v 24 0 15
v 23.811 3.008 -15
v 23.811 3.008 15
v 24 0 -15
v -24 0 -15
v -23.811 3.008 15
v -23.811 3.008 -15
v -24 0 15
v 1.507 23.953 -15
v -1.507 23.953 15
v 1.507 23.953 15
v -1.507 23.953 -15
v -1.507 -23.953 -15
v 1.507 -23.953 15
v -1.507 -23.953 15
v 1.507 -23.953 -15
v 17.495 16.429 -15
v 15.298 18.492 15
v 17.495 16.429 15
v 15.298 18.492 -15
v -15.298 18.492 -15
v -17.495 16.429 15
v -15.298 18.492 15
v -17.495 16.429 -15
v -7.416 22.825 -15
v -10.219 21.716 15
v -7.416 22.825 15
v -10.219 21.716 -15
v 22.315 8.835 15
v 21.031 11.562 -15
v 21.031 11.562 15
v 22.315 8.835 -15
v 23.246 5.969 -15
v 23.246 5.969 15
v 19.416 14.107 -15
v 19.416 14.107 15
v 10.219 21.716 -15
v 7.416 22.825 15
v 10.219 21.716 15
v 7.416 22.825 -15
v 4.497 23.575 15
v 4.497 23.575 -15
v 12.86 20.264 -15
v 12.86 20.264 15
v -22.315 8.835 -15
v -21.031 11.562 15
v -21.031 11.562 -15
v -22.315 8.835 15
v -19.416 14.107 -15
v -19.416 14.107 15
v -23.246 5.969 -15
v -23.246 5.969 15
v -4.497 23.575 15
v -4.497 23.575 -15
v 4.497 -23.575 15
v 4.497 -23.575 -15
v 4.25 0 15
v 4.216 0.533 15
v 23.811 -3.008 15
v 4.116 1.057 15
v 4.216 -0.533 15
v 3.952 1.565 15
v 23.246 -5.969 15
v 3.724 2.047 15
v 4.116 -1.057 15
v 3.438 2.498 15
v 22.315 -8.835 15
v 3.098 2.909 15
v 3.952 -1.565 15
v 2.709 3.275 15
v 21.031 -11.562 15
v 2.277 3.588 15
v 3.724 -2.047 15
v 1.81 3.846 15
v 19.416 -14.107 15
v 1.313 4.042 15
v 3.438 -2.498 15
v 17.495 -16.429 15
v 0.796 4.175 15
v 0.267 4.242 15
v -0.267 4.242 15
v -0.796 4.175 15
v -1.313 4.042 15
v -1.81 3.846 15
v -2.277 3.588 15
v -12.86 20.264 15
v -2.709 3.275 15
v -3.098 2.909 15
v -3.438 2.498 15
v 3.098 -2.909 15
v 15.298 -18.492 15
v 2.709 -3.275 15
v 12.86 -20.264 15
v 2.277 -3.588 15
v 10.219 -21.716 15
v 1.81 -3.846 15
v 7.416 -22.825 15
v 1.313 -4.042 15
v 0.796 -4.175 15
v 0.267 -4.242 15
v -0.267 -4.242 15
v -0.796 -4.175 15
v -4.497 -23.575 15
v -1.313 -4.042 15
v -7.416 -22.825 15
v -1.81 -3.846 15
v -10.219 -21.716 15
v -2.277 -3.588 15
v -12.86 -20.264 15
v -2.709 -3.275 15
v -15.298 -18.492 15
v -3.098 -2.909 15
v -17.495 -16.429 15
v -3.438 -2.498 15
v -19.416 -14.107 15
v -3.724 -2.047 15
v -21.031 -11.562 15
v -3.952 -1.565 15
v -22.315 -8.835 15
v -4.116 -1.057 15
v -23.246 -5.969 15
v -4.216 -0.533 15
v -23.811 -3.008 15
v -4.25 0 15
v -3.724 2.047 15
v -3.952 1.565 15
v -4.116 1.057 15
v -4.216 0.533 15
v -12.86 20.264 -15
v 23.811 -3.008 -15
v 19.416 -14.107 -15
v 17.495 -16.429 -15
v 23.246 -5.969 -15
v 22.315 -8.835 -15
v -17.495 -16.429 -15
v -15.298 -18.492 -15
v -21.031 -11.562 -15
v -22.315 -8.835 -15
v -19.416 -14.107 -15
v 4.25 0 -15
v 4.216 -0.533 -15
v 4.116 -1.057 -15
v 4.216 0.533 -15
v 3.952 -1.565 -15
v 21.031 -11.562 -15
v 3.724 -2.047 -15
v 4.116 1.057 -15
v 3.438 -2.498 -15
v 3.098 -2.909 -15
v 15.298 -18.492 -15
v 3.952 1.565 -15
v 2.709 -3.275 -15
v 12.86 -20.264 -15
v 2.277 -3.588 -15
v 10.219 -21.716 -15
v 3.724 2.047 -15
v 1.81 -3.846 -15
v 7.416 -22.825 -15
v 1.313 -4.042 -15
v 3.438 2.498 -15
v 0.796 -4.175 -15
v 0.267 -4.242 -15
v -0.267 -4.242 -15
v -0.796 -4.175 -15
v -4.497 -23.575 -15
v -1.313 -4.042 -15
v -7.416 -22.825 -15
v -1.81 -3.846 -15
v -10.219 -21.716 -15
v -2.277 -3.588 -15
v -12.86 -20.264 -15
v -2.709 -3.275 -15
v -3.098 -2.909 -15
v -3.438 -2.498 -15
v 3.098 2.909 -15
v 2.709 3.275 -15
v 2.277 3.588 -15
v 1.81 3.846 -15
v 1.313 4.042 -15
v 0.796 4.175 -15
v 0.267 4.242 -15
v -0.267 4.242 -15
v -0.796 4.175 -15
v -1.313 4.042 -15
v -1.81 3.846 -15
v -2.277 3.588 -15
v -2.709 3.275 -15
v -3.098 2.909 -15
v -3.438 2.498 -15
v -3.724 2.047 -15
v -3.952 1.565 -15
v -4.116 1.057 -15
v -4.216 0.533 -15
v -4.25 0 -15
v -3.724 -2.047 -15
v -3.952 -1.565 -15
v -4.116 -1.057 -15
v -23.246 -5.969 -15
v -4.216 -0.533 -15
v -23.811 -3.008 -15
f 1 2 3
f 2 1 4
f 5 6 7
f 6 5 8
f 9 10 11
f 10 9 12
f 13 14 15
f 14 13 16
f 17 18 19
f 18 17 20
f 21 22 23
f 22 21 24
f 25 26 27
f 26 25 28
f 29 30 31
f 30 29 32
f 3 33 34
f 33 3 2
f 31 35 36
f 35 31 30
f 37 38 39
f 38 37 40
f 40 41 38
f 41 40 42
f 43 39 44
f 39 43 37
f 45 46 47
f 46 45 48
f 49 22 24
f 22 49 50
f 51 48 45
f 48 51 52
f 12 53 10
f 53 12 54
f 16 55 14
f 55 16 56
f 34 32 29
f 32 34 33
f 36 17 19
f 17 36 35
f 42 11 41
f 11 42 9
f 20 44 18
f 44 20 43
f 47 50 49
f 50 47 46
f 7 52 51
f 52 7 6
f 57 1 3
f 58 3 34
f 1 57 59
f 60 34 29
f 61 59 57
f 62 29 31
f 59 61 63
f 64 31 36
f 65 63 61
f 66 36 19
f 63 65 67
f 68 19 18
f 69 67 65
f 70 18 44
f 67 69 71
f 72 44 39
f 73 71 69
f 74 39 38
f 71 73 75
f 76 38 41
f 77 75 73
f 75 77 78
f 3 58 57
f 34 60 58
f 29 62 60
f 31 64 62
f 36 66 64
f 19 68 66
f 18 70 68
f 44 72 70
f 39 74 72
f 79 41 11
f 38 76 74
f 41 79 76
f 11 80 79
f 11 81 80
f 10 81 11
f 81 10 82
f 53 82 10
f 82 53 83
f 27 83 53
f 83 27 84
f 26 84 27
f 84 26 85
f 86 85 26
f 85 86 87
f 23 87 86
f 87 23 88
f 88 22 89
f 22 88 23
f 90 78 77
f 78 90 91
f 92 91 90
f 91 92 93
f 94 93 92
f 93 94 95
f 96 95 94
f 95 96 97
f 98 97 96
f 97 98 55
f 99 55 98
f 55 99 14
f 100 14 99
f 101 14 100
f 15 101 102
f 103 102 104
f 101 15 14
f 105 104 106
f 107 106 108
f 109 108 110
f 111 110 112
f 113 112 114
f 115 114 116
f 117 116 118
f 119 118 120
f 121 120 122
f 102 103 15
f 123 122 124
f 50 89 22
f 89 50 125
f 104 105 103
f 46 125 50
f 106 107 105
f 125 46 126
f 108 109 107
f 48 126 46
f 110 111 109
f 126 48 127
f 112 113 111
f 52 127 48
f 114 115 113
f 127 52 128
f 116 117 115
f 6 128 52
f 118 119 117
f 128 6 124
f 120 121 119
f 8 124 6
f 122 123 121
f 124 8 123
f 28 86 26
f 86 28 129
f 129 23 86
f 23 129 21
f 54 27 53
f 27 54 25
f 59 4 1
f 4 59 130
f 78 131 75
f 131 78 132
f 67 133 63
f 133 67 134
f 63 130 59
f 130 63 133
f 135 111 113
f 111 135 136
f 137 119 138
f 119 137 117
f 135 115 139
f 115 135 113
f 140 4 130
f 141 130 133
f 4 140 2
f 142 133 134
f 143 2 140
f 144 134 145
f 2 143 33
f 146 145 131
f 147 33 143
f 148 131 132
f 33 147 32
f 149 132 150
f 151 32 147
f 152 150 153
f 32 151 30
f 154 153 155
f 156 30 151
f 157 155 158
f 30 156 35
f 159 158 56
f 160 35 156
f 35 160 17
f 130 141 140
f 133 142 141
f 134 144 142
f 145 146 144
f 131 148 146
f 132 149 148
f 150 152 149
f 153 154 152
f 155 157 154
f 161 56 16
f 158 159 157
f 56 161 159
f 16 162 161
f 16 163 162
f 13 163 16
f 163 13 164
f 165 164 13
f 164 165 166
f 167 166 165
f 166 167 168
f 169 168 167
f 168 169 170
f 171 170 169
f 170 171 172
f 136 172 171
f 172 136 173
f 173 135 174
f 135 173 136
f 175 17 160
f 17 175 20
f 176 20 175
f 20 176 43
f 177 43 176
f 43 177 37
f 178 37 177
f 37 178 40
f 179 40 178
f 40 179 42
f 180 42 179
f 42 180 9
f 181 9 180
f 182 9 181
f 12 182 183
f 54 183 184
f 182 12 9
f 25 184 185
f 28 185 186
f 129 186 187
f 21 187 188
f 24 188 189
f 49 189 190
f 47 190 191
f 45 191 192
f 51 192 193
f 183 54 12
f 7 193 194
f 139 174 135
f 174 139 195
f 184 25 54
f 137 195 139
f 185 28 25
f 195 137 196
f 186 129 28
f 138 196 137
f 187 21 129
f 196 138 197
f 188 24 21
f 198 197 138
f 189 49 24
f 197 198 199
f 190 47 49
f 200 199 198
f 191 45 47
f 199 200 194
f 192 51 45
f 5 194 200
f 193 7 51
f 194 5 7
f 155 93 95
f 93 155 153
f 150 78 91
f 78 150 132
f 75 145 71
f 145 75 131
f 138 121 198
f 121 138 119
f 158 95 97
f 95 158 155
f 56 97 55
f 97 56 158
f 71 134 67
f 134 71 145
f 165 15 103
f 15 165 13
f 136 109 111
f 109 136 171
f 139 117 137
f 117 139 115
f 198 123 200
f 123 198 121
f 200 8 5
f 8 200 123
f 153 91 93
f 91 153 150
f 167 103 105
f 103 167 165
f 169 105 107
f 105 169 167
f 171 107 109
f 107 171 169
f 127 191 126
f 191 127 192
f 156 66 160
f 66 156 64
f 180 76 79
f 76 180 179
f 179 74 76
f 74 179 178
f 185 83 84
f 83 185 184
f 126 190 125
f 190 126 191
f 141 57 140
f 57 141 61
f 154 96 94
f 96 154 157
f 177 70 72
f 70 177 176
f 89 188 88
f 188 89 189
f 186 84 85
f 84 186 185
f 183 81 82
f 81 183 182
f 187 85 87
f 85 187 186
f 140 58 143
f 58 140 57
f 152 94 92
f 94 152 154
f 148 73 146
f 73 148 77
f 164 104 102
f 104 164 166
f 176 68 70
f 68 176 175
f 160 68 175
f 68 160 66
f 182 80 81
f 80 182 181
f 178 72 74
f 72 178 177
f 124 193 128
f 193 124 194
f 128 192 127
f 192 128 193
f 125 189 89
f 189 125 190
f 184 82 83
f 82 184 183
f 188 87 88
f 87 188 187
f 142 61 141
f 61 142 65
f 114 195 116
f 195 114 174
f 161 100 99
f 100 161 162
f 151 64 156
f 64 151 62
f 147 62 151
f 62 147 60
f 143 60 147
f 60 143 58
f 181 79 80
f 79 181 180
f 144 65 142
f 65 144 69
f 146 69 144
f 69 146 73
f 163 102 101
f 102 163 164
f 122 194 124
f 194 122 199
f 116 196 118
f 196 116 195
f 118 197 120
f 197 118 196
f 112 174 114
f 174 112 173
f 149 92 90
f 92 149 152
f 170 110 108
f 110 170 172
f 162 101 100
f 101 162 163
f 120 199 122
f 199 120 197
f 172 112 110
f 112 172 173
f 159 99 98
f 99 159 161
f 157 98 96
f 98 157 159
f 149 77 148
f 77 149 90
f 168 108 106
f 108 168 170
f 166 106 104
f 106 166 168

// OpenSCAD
$fn = 50;


difference() {
	union() {
		translate(v = [0, 0, -15.0000000000]) {
			cylinder(h = 30, r = 24.0000000000);
		}
	}
	union() {
		translate(v = [0, 0, -100.0000000000]) {
			cylinder(h = 200, r = 4.2500000000);
		}
	}
}
